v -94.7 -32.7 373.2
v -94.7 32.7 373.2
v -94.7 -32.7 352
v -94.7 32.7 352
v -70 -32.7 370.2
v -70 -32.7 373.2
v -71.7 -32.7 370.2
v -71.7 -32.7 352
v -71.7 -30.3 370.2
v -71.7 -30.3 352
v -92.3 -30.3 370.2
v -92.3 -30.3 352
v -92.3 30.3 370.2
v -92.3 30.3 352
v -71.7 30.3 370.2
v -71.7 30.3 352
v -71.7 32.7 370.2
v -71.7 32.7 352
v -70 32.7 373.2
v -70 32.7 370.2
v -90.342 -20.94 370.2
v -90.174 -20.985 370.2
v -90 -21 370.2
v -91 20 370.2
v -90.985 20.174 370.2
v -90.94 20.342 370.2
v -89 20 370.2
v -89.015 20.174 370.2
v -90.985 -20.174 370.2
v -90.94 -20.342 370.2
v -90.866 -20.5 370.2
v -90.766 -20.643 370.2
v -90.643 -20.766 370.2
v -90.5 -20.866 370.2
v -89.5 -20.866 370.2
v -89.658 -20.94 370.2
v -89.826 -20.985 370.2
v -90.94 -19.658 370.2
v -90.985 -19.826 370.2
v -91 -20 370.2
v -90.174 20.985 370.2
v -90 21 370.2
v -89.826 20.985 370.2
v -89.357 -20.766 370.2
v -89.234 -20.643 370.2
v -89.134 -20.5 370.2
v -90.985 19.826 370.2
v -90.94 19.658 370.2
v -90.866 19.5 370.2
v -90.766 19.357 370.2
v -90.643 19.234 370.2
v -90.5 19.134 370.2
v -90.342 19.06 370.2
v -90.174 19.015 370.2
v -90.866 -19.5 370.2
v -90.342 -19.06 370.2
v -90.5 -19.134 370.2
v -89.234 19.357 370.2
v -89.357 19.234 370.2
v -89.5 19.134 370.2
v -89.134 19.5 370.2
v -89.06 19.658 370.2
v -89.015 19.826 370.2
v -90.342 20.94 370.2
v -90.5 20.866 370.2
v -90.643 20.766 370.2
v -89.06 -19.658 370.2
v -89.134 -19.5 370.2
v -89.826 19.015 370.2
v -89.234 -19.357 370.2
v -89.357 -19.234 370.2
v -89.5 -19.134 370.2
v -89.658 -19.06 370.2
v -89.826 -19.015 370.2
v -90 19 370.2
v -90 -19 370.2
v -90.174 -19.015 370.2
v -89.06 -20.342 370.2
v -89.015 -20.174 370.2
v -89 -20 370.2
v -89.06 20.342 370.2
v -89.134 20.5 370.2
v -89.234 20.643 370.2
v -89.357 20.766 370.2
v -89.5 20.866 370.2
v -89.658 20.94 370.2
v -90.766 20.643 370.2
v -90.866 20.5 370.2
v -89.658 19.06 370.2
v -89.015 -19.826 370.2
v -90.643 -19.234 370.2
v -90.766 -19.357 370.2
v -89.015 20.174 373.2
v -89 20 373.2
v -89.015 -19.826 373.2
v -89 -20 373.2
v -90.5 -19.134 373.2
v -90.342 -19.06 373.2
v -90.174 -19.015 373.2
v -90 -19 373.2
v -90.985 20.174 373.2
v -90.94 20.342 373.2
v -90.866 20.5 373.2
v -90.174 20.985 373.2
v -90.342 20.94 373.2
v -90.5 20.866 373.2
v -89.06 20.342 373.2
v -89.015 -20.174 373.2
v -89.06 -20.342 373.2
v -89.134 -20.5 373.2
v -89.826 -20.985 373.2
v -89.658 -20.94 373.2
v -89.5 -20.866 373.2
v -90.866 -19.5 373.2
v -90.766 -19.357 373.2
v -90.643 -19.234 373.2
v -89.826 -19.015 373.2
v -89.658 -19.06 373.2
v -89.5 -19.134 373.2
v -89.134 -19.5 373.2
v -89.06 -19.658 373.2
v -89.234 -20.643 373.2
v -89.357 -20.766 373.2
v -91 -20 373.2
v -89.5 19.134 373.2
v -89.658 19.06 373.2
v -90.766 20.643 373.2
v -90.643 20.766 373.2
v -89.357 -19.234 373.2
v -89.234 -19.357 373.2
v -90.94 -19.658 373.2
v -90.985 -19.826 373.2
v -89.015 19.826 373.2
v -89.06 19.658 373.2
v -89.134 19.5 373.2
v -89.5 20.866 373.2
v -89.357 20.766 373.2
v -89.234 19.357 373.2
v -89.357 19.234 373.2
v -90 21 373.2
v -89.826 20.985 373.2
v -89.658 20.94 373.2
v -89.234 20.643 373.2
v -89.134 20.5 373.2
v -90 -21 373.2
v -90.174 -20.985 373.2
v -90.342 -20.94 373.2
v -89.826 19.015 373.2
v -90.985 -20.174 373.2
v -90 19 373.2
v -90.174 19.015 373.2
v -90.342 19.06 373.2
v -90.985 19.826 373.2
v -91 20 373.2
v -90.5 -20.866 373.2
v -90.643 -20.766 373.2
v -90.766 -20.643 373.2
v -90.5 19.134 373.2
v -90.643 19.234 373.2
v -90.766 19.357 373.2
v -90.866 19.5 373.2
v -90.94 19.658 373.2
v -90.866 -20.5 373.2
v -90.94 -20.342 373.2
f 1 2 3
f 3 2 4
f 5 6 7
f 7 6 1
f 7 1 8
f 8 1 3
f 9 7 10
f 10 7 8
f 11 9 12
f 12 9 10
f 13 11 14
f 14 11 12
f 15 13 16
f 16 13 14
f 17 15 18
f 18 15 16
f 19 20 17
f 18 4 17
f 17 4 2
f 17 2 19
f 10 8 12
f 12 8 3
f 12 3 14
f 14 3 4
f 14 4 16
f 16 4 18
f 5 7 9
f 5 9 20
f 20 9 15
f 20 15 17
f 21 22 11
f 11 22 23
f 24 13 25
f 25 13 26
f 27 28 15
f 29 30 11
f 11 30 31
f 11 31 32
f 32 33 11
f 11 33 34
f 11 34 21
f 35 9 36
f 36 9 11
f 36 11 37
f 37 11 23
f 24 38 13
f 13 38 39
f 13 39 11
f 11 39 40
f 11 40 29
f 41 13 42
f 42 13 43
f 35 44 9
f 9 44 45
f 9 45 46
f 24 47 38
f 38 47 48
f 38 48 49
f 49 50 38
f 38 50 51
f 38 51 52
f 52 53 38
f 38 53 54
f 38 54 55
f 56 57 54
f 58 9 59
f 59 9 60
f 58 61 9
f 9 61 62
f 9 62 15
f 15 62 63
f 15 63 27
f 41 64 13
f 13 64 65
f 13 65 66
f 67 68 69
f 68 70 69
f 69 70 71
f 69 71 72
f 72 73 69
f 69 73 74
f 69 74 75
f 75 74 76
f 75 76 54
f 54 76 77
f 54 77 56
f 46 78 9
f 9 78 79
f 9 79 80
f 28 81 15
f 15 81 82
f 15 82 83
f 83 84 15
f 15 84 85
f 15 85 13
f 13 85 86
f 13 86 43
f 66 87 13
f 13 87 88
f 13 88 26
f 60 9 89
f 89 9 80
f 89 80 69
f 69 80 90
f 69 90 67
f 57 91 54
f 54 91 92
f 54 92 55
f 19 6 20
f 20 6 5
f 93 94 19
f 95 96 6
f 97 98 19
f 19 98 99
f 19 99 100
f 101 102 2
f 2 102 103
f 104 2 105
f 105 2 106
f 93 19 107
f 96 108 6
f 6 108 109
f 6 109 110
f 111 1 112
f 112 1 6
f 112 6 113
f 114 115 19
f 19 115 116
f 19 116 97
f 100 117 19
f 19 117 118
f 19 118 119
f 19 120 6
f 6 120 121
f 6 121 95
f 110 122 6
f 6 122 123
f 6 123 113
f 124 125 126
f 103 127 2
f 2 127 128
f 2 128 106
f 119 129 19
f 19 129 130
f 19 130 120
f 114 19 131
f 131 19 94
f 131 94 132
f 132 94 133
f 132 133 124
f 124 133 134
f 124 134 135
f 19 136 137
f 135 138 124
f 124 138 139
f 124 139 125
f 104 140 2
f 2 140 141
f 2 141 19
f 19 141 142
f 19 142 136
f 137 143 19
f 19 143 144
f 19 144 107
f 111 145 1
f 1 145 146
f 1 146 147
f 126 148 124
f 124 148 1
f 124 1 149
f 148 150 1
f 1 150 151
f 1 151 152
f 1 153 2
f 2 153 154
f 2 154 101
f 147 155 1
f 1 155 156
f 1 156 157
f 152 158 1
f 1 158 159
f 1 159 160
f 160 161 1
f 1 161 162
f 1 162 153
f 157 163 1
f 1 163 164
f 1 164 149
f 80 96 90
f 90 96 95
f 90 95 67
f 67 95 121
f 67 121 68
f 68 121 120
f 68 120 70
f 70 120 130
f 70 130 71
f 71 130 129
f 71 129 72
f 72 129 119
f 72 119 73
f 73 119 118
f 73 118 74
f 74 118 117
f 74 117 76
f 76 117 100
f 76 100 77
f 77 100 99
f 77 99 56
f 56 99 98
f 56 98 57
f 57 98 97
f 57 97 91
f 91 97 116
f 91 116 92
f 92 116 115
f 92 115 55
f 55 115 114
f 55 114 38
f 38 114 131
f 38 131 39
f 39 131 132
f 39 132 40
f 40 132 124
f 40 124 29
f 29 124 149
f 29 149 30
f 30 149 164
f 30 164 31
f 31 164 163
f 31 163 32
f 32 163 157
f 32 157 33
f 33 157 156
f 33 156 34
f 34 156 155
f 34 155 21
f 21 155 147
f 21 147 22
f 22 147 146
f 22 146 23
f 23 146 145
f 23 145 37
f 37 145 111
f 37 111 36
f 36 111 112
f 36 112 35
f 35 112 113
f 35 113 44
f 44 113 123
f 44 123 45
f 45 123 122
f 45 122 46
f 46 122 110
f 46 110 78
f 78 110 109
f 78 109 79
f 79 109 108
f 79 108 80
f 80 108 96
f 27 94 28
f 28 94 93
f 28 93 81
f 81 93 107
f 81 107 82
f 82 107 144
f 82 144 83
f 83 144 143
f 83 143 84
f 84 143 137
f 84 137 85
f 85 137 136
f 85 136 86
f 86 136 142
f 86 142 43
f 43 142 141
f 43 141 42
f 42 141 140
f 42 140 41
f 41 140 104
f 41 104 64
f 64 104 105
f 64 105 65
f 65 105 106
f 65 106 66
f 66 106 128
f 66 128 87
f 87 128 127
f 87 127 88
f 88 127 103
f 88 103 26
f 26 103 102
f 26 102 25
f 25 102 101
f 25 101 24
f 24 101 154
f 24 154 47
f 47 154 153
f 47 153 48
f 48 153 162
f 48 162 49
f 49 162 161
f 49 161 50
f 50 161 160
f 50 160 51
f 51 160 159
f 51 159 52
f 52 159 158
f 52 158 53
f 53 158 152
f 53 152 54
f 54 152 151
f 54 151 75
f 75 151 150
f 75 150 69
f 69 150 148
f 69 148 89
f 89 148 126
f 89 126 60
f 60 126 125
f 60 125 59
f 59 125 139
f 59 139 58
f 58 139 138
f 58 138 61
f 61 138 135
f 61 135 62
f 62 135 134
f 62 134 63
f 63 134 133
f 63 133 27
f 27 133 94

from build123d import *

# Parameters (mm, degrees)
U_SKIRT_DEPTH                 = 18.2
SKETCH2_W                     = 24.7
SKETCH2_H                     = 65.4
TOP_PLATE_DEPTH               = 3
FILAMENT_PIN_HOLES_DEPTH      = 102.826420933
FILAMENT_PIN_HOLES_DEPTH_BACK = 102.826420933
SKETCH3_R                     = 1


with BuildPart() as part:
    # Sketch1 → U_skirt (new body)
    with BuildSketch(Plane.XY.offset(352)):
        Polygon((-94.7, -32.7), (-71.7, -32.7), (-71.7, -30.3), (-92.3, -30.3), (-92.3, 30.3), (-71.7, 30.3), (-71.7, 32.7), (-94.7, 32.7), align=None)
    extrude(amount=U_SKIRT_DEPTH)

    # Sketch2 → Top_plate (add)
    with BuildSketch(Plane.XY.offset(370.2)):
        with Locations((-82.35, 0)):
            Rectangle(SKETCH2_W, SKETCH2_H)
    extrude(amount=TOP_PLATE_DEPTH)

    # Sketch3 → Filament_pin_holes (cut, two sides: drawn at the far end of the back side and taken through both)
    with BuildSketch(Plane.XY.offset(370.2).offset(-FILAMENT_PIN_HOLES_DEPTH_BACK)):
        with Locations((-90, 20)):
            Circle(SKETCH3_R)
        with Locations((-90, -20)):
            Circle(SKETCH3_R)
    extrude(amount=FILAMENT_PIN_HOLES_DEPTH + FILAMENT_PIN_HOLES_DEPTH_BACK, mode=Mode.SUBTRACT)


solid = part.part
